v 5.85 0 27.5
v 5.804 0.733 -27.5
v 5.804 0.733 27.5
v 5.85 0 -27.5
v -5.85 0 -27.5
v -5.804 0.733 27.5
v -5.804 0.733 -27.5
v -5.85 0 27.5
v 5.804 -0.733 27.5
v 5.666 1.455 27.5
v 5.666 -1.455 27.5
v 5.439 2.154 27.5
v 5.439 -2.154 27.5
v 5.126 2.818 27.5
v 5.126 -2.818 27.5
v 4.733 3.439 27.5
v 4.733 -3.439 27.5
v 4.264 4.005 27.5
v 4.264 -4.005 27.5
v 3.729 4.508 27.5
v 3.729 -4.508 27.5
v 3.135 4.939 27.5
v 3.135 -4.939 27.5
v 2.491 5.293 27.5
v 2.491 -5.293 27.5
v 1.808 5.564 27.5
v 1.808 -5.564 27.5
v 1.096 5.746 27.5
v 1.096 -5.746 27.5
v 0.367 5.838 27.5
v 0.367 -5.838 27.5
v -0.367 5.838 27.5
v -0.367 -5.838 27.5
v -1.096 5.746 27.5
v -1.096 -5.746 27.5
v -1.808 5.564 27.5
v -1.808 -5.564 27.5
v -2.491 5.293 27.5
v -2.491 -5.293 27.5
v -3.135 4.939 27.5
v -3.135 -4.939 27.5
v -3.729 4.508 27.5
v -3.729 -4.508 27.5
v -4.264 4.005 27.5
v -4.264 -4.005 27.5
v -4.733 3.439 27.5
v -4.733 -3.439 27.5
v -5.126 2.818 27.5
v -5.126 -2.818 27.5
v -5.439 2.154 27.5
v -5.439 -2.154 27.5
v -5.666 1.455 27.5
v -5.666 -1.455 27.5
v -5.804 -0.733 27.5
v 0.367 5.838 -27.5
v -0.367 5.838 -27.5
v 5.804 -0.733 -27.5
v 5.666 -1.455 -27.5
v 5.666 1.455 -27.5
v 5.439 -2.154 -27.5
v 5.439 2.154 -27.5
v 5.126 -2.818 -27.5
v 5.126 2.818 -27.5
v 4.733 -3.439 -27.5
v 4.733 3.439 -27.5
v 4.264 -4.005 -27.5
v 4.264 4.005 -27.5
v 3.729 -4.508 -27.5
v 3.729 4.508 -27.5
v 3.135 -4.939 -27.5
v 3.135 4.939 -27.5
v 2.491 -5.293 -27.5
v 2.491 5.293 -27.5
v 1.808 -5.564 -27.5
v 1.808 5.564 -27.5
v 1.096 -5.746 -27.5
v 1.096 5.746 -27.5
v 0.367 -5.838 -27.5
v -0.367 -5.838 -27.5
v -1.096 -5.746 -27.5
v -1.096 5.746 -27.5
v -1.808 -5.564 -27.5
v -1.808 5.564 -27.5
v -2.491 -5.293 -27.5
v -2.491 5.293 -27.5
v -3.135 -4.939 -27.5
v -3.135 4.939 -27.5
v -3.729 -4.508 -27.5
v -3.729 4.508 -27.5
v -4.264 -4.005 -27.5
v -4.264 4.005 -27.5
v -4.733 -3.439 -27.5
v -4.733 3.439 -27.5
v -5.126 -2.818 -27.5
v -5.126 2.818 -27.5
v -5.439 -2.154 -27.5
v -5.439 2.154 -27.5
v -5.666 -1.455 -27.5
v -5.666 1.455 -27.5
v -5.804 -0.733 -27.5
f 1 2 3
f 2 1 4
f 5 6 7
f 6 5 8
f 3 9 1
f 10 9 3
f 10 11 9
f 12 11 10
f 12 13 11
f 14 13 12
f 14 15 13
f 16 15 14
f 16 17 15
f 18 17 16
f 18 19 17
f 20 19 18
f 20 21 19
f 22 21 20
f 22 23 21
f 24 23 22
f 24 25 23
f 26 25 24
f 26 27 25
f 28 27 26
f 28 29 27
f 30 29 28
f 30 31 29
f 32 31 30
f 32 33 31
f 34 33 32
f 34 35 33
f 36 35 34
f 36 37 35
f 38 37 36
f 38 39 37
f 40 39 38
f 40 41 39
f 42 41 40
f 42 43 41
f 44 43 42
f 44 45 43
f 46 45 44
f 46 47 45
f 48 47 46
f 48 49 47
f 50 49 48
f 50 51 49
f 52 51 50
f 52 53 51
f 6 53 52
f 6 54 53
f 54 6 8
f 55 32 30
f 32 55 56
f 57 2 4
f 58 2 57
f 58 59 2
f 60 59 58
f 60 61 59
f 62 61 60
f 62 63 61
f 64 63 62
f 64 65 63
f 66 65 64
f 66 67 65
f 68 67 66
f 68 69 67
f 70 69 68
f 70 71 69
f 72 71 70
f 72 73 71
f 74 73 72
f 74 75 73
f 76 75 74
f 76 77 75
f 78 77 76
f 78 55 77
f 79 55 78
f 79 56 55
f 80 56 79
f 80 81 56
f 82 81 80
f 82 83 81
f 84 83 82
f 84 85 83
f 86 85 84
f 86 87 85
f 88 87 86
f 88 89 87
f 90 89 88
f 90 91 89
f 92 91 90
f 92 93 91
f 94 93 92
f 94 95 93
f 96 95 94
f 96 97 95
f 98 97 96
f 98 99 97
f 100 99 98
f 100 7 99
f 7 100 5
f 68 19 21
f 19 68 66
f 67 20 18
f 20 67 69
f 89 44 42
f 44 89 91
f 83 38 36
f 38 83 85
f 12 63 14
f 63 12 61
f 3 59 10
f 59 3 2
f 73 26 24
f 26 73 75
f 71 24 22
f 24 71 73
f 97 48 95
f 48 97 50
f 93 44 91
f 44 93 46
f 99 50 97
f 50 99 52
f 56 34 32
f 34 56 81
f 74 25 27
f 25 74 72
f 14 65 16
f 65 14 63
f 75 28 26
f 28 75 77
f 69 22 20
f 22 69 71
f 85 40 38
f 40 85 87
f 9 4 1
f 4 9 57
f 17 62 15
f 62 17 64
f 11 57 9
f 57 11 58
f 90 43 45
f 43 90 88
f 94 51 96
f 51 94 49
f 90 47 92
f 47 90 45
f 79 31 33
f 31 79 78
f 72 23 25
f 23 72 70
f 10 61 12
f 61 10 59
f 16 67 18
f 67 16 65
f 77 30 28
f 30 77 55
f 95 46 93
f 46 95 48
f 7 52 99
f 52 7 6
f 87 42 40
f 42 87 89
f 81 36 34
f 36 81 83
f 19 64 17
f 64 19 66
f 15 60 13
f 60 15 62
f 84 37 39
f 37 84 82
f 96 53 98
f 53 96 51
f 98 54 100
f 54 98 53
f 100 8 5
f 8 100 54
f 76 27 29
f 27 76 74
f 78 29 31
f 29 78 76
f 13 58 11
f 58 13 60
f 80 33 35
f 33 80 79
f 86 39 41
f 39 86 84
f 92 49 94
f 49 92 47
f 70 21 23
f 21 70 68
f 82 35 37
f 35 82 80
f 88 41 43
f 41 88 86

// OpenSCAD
$fn = 50;


difference() {
	union() {
		translate(v = [0, 0, -27.5000000000]) {
			cylinder(h = 55, r = 5.8500000000);
		}
	}
	union() {
		translate(v = [0, 0, -100.0000000000]) {
			cylinder(h = 200, r = 0);
		}
	}
}
